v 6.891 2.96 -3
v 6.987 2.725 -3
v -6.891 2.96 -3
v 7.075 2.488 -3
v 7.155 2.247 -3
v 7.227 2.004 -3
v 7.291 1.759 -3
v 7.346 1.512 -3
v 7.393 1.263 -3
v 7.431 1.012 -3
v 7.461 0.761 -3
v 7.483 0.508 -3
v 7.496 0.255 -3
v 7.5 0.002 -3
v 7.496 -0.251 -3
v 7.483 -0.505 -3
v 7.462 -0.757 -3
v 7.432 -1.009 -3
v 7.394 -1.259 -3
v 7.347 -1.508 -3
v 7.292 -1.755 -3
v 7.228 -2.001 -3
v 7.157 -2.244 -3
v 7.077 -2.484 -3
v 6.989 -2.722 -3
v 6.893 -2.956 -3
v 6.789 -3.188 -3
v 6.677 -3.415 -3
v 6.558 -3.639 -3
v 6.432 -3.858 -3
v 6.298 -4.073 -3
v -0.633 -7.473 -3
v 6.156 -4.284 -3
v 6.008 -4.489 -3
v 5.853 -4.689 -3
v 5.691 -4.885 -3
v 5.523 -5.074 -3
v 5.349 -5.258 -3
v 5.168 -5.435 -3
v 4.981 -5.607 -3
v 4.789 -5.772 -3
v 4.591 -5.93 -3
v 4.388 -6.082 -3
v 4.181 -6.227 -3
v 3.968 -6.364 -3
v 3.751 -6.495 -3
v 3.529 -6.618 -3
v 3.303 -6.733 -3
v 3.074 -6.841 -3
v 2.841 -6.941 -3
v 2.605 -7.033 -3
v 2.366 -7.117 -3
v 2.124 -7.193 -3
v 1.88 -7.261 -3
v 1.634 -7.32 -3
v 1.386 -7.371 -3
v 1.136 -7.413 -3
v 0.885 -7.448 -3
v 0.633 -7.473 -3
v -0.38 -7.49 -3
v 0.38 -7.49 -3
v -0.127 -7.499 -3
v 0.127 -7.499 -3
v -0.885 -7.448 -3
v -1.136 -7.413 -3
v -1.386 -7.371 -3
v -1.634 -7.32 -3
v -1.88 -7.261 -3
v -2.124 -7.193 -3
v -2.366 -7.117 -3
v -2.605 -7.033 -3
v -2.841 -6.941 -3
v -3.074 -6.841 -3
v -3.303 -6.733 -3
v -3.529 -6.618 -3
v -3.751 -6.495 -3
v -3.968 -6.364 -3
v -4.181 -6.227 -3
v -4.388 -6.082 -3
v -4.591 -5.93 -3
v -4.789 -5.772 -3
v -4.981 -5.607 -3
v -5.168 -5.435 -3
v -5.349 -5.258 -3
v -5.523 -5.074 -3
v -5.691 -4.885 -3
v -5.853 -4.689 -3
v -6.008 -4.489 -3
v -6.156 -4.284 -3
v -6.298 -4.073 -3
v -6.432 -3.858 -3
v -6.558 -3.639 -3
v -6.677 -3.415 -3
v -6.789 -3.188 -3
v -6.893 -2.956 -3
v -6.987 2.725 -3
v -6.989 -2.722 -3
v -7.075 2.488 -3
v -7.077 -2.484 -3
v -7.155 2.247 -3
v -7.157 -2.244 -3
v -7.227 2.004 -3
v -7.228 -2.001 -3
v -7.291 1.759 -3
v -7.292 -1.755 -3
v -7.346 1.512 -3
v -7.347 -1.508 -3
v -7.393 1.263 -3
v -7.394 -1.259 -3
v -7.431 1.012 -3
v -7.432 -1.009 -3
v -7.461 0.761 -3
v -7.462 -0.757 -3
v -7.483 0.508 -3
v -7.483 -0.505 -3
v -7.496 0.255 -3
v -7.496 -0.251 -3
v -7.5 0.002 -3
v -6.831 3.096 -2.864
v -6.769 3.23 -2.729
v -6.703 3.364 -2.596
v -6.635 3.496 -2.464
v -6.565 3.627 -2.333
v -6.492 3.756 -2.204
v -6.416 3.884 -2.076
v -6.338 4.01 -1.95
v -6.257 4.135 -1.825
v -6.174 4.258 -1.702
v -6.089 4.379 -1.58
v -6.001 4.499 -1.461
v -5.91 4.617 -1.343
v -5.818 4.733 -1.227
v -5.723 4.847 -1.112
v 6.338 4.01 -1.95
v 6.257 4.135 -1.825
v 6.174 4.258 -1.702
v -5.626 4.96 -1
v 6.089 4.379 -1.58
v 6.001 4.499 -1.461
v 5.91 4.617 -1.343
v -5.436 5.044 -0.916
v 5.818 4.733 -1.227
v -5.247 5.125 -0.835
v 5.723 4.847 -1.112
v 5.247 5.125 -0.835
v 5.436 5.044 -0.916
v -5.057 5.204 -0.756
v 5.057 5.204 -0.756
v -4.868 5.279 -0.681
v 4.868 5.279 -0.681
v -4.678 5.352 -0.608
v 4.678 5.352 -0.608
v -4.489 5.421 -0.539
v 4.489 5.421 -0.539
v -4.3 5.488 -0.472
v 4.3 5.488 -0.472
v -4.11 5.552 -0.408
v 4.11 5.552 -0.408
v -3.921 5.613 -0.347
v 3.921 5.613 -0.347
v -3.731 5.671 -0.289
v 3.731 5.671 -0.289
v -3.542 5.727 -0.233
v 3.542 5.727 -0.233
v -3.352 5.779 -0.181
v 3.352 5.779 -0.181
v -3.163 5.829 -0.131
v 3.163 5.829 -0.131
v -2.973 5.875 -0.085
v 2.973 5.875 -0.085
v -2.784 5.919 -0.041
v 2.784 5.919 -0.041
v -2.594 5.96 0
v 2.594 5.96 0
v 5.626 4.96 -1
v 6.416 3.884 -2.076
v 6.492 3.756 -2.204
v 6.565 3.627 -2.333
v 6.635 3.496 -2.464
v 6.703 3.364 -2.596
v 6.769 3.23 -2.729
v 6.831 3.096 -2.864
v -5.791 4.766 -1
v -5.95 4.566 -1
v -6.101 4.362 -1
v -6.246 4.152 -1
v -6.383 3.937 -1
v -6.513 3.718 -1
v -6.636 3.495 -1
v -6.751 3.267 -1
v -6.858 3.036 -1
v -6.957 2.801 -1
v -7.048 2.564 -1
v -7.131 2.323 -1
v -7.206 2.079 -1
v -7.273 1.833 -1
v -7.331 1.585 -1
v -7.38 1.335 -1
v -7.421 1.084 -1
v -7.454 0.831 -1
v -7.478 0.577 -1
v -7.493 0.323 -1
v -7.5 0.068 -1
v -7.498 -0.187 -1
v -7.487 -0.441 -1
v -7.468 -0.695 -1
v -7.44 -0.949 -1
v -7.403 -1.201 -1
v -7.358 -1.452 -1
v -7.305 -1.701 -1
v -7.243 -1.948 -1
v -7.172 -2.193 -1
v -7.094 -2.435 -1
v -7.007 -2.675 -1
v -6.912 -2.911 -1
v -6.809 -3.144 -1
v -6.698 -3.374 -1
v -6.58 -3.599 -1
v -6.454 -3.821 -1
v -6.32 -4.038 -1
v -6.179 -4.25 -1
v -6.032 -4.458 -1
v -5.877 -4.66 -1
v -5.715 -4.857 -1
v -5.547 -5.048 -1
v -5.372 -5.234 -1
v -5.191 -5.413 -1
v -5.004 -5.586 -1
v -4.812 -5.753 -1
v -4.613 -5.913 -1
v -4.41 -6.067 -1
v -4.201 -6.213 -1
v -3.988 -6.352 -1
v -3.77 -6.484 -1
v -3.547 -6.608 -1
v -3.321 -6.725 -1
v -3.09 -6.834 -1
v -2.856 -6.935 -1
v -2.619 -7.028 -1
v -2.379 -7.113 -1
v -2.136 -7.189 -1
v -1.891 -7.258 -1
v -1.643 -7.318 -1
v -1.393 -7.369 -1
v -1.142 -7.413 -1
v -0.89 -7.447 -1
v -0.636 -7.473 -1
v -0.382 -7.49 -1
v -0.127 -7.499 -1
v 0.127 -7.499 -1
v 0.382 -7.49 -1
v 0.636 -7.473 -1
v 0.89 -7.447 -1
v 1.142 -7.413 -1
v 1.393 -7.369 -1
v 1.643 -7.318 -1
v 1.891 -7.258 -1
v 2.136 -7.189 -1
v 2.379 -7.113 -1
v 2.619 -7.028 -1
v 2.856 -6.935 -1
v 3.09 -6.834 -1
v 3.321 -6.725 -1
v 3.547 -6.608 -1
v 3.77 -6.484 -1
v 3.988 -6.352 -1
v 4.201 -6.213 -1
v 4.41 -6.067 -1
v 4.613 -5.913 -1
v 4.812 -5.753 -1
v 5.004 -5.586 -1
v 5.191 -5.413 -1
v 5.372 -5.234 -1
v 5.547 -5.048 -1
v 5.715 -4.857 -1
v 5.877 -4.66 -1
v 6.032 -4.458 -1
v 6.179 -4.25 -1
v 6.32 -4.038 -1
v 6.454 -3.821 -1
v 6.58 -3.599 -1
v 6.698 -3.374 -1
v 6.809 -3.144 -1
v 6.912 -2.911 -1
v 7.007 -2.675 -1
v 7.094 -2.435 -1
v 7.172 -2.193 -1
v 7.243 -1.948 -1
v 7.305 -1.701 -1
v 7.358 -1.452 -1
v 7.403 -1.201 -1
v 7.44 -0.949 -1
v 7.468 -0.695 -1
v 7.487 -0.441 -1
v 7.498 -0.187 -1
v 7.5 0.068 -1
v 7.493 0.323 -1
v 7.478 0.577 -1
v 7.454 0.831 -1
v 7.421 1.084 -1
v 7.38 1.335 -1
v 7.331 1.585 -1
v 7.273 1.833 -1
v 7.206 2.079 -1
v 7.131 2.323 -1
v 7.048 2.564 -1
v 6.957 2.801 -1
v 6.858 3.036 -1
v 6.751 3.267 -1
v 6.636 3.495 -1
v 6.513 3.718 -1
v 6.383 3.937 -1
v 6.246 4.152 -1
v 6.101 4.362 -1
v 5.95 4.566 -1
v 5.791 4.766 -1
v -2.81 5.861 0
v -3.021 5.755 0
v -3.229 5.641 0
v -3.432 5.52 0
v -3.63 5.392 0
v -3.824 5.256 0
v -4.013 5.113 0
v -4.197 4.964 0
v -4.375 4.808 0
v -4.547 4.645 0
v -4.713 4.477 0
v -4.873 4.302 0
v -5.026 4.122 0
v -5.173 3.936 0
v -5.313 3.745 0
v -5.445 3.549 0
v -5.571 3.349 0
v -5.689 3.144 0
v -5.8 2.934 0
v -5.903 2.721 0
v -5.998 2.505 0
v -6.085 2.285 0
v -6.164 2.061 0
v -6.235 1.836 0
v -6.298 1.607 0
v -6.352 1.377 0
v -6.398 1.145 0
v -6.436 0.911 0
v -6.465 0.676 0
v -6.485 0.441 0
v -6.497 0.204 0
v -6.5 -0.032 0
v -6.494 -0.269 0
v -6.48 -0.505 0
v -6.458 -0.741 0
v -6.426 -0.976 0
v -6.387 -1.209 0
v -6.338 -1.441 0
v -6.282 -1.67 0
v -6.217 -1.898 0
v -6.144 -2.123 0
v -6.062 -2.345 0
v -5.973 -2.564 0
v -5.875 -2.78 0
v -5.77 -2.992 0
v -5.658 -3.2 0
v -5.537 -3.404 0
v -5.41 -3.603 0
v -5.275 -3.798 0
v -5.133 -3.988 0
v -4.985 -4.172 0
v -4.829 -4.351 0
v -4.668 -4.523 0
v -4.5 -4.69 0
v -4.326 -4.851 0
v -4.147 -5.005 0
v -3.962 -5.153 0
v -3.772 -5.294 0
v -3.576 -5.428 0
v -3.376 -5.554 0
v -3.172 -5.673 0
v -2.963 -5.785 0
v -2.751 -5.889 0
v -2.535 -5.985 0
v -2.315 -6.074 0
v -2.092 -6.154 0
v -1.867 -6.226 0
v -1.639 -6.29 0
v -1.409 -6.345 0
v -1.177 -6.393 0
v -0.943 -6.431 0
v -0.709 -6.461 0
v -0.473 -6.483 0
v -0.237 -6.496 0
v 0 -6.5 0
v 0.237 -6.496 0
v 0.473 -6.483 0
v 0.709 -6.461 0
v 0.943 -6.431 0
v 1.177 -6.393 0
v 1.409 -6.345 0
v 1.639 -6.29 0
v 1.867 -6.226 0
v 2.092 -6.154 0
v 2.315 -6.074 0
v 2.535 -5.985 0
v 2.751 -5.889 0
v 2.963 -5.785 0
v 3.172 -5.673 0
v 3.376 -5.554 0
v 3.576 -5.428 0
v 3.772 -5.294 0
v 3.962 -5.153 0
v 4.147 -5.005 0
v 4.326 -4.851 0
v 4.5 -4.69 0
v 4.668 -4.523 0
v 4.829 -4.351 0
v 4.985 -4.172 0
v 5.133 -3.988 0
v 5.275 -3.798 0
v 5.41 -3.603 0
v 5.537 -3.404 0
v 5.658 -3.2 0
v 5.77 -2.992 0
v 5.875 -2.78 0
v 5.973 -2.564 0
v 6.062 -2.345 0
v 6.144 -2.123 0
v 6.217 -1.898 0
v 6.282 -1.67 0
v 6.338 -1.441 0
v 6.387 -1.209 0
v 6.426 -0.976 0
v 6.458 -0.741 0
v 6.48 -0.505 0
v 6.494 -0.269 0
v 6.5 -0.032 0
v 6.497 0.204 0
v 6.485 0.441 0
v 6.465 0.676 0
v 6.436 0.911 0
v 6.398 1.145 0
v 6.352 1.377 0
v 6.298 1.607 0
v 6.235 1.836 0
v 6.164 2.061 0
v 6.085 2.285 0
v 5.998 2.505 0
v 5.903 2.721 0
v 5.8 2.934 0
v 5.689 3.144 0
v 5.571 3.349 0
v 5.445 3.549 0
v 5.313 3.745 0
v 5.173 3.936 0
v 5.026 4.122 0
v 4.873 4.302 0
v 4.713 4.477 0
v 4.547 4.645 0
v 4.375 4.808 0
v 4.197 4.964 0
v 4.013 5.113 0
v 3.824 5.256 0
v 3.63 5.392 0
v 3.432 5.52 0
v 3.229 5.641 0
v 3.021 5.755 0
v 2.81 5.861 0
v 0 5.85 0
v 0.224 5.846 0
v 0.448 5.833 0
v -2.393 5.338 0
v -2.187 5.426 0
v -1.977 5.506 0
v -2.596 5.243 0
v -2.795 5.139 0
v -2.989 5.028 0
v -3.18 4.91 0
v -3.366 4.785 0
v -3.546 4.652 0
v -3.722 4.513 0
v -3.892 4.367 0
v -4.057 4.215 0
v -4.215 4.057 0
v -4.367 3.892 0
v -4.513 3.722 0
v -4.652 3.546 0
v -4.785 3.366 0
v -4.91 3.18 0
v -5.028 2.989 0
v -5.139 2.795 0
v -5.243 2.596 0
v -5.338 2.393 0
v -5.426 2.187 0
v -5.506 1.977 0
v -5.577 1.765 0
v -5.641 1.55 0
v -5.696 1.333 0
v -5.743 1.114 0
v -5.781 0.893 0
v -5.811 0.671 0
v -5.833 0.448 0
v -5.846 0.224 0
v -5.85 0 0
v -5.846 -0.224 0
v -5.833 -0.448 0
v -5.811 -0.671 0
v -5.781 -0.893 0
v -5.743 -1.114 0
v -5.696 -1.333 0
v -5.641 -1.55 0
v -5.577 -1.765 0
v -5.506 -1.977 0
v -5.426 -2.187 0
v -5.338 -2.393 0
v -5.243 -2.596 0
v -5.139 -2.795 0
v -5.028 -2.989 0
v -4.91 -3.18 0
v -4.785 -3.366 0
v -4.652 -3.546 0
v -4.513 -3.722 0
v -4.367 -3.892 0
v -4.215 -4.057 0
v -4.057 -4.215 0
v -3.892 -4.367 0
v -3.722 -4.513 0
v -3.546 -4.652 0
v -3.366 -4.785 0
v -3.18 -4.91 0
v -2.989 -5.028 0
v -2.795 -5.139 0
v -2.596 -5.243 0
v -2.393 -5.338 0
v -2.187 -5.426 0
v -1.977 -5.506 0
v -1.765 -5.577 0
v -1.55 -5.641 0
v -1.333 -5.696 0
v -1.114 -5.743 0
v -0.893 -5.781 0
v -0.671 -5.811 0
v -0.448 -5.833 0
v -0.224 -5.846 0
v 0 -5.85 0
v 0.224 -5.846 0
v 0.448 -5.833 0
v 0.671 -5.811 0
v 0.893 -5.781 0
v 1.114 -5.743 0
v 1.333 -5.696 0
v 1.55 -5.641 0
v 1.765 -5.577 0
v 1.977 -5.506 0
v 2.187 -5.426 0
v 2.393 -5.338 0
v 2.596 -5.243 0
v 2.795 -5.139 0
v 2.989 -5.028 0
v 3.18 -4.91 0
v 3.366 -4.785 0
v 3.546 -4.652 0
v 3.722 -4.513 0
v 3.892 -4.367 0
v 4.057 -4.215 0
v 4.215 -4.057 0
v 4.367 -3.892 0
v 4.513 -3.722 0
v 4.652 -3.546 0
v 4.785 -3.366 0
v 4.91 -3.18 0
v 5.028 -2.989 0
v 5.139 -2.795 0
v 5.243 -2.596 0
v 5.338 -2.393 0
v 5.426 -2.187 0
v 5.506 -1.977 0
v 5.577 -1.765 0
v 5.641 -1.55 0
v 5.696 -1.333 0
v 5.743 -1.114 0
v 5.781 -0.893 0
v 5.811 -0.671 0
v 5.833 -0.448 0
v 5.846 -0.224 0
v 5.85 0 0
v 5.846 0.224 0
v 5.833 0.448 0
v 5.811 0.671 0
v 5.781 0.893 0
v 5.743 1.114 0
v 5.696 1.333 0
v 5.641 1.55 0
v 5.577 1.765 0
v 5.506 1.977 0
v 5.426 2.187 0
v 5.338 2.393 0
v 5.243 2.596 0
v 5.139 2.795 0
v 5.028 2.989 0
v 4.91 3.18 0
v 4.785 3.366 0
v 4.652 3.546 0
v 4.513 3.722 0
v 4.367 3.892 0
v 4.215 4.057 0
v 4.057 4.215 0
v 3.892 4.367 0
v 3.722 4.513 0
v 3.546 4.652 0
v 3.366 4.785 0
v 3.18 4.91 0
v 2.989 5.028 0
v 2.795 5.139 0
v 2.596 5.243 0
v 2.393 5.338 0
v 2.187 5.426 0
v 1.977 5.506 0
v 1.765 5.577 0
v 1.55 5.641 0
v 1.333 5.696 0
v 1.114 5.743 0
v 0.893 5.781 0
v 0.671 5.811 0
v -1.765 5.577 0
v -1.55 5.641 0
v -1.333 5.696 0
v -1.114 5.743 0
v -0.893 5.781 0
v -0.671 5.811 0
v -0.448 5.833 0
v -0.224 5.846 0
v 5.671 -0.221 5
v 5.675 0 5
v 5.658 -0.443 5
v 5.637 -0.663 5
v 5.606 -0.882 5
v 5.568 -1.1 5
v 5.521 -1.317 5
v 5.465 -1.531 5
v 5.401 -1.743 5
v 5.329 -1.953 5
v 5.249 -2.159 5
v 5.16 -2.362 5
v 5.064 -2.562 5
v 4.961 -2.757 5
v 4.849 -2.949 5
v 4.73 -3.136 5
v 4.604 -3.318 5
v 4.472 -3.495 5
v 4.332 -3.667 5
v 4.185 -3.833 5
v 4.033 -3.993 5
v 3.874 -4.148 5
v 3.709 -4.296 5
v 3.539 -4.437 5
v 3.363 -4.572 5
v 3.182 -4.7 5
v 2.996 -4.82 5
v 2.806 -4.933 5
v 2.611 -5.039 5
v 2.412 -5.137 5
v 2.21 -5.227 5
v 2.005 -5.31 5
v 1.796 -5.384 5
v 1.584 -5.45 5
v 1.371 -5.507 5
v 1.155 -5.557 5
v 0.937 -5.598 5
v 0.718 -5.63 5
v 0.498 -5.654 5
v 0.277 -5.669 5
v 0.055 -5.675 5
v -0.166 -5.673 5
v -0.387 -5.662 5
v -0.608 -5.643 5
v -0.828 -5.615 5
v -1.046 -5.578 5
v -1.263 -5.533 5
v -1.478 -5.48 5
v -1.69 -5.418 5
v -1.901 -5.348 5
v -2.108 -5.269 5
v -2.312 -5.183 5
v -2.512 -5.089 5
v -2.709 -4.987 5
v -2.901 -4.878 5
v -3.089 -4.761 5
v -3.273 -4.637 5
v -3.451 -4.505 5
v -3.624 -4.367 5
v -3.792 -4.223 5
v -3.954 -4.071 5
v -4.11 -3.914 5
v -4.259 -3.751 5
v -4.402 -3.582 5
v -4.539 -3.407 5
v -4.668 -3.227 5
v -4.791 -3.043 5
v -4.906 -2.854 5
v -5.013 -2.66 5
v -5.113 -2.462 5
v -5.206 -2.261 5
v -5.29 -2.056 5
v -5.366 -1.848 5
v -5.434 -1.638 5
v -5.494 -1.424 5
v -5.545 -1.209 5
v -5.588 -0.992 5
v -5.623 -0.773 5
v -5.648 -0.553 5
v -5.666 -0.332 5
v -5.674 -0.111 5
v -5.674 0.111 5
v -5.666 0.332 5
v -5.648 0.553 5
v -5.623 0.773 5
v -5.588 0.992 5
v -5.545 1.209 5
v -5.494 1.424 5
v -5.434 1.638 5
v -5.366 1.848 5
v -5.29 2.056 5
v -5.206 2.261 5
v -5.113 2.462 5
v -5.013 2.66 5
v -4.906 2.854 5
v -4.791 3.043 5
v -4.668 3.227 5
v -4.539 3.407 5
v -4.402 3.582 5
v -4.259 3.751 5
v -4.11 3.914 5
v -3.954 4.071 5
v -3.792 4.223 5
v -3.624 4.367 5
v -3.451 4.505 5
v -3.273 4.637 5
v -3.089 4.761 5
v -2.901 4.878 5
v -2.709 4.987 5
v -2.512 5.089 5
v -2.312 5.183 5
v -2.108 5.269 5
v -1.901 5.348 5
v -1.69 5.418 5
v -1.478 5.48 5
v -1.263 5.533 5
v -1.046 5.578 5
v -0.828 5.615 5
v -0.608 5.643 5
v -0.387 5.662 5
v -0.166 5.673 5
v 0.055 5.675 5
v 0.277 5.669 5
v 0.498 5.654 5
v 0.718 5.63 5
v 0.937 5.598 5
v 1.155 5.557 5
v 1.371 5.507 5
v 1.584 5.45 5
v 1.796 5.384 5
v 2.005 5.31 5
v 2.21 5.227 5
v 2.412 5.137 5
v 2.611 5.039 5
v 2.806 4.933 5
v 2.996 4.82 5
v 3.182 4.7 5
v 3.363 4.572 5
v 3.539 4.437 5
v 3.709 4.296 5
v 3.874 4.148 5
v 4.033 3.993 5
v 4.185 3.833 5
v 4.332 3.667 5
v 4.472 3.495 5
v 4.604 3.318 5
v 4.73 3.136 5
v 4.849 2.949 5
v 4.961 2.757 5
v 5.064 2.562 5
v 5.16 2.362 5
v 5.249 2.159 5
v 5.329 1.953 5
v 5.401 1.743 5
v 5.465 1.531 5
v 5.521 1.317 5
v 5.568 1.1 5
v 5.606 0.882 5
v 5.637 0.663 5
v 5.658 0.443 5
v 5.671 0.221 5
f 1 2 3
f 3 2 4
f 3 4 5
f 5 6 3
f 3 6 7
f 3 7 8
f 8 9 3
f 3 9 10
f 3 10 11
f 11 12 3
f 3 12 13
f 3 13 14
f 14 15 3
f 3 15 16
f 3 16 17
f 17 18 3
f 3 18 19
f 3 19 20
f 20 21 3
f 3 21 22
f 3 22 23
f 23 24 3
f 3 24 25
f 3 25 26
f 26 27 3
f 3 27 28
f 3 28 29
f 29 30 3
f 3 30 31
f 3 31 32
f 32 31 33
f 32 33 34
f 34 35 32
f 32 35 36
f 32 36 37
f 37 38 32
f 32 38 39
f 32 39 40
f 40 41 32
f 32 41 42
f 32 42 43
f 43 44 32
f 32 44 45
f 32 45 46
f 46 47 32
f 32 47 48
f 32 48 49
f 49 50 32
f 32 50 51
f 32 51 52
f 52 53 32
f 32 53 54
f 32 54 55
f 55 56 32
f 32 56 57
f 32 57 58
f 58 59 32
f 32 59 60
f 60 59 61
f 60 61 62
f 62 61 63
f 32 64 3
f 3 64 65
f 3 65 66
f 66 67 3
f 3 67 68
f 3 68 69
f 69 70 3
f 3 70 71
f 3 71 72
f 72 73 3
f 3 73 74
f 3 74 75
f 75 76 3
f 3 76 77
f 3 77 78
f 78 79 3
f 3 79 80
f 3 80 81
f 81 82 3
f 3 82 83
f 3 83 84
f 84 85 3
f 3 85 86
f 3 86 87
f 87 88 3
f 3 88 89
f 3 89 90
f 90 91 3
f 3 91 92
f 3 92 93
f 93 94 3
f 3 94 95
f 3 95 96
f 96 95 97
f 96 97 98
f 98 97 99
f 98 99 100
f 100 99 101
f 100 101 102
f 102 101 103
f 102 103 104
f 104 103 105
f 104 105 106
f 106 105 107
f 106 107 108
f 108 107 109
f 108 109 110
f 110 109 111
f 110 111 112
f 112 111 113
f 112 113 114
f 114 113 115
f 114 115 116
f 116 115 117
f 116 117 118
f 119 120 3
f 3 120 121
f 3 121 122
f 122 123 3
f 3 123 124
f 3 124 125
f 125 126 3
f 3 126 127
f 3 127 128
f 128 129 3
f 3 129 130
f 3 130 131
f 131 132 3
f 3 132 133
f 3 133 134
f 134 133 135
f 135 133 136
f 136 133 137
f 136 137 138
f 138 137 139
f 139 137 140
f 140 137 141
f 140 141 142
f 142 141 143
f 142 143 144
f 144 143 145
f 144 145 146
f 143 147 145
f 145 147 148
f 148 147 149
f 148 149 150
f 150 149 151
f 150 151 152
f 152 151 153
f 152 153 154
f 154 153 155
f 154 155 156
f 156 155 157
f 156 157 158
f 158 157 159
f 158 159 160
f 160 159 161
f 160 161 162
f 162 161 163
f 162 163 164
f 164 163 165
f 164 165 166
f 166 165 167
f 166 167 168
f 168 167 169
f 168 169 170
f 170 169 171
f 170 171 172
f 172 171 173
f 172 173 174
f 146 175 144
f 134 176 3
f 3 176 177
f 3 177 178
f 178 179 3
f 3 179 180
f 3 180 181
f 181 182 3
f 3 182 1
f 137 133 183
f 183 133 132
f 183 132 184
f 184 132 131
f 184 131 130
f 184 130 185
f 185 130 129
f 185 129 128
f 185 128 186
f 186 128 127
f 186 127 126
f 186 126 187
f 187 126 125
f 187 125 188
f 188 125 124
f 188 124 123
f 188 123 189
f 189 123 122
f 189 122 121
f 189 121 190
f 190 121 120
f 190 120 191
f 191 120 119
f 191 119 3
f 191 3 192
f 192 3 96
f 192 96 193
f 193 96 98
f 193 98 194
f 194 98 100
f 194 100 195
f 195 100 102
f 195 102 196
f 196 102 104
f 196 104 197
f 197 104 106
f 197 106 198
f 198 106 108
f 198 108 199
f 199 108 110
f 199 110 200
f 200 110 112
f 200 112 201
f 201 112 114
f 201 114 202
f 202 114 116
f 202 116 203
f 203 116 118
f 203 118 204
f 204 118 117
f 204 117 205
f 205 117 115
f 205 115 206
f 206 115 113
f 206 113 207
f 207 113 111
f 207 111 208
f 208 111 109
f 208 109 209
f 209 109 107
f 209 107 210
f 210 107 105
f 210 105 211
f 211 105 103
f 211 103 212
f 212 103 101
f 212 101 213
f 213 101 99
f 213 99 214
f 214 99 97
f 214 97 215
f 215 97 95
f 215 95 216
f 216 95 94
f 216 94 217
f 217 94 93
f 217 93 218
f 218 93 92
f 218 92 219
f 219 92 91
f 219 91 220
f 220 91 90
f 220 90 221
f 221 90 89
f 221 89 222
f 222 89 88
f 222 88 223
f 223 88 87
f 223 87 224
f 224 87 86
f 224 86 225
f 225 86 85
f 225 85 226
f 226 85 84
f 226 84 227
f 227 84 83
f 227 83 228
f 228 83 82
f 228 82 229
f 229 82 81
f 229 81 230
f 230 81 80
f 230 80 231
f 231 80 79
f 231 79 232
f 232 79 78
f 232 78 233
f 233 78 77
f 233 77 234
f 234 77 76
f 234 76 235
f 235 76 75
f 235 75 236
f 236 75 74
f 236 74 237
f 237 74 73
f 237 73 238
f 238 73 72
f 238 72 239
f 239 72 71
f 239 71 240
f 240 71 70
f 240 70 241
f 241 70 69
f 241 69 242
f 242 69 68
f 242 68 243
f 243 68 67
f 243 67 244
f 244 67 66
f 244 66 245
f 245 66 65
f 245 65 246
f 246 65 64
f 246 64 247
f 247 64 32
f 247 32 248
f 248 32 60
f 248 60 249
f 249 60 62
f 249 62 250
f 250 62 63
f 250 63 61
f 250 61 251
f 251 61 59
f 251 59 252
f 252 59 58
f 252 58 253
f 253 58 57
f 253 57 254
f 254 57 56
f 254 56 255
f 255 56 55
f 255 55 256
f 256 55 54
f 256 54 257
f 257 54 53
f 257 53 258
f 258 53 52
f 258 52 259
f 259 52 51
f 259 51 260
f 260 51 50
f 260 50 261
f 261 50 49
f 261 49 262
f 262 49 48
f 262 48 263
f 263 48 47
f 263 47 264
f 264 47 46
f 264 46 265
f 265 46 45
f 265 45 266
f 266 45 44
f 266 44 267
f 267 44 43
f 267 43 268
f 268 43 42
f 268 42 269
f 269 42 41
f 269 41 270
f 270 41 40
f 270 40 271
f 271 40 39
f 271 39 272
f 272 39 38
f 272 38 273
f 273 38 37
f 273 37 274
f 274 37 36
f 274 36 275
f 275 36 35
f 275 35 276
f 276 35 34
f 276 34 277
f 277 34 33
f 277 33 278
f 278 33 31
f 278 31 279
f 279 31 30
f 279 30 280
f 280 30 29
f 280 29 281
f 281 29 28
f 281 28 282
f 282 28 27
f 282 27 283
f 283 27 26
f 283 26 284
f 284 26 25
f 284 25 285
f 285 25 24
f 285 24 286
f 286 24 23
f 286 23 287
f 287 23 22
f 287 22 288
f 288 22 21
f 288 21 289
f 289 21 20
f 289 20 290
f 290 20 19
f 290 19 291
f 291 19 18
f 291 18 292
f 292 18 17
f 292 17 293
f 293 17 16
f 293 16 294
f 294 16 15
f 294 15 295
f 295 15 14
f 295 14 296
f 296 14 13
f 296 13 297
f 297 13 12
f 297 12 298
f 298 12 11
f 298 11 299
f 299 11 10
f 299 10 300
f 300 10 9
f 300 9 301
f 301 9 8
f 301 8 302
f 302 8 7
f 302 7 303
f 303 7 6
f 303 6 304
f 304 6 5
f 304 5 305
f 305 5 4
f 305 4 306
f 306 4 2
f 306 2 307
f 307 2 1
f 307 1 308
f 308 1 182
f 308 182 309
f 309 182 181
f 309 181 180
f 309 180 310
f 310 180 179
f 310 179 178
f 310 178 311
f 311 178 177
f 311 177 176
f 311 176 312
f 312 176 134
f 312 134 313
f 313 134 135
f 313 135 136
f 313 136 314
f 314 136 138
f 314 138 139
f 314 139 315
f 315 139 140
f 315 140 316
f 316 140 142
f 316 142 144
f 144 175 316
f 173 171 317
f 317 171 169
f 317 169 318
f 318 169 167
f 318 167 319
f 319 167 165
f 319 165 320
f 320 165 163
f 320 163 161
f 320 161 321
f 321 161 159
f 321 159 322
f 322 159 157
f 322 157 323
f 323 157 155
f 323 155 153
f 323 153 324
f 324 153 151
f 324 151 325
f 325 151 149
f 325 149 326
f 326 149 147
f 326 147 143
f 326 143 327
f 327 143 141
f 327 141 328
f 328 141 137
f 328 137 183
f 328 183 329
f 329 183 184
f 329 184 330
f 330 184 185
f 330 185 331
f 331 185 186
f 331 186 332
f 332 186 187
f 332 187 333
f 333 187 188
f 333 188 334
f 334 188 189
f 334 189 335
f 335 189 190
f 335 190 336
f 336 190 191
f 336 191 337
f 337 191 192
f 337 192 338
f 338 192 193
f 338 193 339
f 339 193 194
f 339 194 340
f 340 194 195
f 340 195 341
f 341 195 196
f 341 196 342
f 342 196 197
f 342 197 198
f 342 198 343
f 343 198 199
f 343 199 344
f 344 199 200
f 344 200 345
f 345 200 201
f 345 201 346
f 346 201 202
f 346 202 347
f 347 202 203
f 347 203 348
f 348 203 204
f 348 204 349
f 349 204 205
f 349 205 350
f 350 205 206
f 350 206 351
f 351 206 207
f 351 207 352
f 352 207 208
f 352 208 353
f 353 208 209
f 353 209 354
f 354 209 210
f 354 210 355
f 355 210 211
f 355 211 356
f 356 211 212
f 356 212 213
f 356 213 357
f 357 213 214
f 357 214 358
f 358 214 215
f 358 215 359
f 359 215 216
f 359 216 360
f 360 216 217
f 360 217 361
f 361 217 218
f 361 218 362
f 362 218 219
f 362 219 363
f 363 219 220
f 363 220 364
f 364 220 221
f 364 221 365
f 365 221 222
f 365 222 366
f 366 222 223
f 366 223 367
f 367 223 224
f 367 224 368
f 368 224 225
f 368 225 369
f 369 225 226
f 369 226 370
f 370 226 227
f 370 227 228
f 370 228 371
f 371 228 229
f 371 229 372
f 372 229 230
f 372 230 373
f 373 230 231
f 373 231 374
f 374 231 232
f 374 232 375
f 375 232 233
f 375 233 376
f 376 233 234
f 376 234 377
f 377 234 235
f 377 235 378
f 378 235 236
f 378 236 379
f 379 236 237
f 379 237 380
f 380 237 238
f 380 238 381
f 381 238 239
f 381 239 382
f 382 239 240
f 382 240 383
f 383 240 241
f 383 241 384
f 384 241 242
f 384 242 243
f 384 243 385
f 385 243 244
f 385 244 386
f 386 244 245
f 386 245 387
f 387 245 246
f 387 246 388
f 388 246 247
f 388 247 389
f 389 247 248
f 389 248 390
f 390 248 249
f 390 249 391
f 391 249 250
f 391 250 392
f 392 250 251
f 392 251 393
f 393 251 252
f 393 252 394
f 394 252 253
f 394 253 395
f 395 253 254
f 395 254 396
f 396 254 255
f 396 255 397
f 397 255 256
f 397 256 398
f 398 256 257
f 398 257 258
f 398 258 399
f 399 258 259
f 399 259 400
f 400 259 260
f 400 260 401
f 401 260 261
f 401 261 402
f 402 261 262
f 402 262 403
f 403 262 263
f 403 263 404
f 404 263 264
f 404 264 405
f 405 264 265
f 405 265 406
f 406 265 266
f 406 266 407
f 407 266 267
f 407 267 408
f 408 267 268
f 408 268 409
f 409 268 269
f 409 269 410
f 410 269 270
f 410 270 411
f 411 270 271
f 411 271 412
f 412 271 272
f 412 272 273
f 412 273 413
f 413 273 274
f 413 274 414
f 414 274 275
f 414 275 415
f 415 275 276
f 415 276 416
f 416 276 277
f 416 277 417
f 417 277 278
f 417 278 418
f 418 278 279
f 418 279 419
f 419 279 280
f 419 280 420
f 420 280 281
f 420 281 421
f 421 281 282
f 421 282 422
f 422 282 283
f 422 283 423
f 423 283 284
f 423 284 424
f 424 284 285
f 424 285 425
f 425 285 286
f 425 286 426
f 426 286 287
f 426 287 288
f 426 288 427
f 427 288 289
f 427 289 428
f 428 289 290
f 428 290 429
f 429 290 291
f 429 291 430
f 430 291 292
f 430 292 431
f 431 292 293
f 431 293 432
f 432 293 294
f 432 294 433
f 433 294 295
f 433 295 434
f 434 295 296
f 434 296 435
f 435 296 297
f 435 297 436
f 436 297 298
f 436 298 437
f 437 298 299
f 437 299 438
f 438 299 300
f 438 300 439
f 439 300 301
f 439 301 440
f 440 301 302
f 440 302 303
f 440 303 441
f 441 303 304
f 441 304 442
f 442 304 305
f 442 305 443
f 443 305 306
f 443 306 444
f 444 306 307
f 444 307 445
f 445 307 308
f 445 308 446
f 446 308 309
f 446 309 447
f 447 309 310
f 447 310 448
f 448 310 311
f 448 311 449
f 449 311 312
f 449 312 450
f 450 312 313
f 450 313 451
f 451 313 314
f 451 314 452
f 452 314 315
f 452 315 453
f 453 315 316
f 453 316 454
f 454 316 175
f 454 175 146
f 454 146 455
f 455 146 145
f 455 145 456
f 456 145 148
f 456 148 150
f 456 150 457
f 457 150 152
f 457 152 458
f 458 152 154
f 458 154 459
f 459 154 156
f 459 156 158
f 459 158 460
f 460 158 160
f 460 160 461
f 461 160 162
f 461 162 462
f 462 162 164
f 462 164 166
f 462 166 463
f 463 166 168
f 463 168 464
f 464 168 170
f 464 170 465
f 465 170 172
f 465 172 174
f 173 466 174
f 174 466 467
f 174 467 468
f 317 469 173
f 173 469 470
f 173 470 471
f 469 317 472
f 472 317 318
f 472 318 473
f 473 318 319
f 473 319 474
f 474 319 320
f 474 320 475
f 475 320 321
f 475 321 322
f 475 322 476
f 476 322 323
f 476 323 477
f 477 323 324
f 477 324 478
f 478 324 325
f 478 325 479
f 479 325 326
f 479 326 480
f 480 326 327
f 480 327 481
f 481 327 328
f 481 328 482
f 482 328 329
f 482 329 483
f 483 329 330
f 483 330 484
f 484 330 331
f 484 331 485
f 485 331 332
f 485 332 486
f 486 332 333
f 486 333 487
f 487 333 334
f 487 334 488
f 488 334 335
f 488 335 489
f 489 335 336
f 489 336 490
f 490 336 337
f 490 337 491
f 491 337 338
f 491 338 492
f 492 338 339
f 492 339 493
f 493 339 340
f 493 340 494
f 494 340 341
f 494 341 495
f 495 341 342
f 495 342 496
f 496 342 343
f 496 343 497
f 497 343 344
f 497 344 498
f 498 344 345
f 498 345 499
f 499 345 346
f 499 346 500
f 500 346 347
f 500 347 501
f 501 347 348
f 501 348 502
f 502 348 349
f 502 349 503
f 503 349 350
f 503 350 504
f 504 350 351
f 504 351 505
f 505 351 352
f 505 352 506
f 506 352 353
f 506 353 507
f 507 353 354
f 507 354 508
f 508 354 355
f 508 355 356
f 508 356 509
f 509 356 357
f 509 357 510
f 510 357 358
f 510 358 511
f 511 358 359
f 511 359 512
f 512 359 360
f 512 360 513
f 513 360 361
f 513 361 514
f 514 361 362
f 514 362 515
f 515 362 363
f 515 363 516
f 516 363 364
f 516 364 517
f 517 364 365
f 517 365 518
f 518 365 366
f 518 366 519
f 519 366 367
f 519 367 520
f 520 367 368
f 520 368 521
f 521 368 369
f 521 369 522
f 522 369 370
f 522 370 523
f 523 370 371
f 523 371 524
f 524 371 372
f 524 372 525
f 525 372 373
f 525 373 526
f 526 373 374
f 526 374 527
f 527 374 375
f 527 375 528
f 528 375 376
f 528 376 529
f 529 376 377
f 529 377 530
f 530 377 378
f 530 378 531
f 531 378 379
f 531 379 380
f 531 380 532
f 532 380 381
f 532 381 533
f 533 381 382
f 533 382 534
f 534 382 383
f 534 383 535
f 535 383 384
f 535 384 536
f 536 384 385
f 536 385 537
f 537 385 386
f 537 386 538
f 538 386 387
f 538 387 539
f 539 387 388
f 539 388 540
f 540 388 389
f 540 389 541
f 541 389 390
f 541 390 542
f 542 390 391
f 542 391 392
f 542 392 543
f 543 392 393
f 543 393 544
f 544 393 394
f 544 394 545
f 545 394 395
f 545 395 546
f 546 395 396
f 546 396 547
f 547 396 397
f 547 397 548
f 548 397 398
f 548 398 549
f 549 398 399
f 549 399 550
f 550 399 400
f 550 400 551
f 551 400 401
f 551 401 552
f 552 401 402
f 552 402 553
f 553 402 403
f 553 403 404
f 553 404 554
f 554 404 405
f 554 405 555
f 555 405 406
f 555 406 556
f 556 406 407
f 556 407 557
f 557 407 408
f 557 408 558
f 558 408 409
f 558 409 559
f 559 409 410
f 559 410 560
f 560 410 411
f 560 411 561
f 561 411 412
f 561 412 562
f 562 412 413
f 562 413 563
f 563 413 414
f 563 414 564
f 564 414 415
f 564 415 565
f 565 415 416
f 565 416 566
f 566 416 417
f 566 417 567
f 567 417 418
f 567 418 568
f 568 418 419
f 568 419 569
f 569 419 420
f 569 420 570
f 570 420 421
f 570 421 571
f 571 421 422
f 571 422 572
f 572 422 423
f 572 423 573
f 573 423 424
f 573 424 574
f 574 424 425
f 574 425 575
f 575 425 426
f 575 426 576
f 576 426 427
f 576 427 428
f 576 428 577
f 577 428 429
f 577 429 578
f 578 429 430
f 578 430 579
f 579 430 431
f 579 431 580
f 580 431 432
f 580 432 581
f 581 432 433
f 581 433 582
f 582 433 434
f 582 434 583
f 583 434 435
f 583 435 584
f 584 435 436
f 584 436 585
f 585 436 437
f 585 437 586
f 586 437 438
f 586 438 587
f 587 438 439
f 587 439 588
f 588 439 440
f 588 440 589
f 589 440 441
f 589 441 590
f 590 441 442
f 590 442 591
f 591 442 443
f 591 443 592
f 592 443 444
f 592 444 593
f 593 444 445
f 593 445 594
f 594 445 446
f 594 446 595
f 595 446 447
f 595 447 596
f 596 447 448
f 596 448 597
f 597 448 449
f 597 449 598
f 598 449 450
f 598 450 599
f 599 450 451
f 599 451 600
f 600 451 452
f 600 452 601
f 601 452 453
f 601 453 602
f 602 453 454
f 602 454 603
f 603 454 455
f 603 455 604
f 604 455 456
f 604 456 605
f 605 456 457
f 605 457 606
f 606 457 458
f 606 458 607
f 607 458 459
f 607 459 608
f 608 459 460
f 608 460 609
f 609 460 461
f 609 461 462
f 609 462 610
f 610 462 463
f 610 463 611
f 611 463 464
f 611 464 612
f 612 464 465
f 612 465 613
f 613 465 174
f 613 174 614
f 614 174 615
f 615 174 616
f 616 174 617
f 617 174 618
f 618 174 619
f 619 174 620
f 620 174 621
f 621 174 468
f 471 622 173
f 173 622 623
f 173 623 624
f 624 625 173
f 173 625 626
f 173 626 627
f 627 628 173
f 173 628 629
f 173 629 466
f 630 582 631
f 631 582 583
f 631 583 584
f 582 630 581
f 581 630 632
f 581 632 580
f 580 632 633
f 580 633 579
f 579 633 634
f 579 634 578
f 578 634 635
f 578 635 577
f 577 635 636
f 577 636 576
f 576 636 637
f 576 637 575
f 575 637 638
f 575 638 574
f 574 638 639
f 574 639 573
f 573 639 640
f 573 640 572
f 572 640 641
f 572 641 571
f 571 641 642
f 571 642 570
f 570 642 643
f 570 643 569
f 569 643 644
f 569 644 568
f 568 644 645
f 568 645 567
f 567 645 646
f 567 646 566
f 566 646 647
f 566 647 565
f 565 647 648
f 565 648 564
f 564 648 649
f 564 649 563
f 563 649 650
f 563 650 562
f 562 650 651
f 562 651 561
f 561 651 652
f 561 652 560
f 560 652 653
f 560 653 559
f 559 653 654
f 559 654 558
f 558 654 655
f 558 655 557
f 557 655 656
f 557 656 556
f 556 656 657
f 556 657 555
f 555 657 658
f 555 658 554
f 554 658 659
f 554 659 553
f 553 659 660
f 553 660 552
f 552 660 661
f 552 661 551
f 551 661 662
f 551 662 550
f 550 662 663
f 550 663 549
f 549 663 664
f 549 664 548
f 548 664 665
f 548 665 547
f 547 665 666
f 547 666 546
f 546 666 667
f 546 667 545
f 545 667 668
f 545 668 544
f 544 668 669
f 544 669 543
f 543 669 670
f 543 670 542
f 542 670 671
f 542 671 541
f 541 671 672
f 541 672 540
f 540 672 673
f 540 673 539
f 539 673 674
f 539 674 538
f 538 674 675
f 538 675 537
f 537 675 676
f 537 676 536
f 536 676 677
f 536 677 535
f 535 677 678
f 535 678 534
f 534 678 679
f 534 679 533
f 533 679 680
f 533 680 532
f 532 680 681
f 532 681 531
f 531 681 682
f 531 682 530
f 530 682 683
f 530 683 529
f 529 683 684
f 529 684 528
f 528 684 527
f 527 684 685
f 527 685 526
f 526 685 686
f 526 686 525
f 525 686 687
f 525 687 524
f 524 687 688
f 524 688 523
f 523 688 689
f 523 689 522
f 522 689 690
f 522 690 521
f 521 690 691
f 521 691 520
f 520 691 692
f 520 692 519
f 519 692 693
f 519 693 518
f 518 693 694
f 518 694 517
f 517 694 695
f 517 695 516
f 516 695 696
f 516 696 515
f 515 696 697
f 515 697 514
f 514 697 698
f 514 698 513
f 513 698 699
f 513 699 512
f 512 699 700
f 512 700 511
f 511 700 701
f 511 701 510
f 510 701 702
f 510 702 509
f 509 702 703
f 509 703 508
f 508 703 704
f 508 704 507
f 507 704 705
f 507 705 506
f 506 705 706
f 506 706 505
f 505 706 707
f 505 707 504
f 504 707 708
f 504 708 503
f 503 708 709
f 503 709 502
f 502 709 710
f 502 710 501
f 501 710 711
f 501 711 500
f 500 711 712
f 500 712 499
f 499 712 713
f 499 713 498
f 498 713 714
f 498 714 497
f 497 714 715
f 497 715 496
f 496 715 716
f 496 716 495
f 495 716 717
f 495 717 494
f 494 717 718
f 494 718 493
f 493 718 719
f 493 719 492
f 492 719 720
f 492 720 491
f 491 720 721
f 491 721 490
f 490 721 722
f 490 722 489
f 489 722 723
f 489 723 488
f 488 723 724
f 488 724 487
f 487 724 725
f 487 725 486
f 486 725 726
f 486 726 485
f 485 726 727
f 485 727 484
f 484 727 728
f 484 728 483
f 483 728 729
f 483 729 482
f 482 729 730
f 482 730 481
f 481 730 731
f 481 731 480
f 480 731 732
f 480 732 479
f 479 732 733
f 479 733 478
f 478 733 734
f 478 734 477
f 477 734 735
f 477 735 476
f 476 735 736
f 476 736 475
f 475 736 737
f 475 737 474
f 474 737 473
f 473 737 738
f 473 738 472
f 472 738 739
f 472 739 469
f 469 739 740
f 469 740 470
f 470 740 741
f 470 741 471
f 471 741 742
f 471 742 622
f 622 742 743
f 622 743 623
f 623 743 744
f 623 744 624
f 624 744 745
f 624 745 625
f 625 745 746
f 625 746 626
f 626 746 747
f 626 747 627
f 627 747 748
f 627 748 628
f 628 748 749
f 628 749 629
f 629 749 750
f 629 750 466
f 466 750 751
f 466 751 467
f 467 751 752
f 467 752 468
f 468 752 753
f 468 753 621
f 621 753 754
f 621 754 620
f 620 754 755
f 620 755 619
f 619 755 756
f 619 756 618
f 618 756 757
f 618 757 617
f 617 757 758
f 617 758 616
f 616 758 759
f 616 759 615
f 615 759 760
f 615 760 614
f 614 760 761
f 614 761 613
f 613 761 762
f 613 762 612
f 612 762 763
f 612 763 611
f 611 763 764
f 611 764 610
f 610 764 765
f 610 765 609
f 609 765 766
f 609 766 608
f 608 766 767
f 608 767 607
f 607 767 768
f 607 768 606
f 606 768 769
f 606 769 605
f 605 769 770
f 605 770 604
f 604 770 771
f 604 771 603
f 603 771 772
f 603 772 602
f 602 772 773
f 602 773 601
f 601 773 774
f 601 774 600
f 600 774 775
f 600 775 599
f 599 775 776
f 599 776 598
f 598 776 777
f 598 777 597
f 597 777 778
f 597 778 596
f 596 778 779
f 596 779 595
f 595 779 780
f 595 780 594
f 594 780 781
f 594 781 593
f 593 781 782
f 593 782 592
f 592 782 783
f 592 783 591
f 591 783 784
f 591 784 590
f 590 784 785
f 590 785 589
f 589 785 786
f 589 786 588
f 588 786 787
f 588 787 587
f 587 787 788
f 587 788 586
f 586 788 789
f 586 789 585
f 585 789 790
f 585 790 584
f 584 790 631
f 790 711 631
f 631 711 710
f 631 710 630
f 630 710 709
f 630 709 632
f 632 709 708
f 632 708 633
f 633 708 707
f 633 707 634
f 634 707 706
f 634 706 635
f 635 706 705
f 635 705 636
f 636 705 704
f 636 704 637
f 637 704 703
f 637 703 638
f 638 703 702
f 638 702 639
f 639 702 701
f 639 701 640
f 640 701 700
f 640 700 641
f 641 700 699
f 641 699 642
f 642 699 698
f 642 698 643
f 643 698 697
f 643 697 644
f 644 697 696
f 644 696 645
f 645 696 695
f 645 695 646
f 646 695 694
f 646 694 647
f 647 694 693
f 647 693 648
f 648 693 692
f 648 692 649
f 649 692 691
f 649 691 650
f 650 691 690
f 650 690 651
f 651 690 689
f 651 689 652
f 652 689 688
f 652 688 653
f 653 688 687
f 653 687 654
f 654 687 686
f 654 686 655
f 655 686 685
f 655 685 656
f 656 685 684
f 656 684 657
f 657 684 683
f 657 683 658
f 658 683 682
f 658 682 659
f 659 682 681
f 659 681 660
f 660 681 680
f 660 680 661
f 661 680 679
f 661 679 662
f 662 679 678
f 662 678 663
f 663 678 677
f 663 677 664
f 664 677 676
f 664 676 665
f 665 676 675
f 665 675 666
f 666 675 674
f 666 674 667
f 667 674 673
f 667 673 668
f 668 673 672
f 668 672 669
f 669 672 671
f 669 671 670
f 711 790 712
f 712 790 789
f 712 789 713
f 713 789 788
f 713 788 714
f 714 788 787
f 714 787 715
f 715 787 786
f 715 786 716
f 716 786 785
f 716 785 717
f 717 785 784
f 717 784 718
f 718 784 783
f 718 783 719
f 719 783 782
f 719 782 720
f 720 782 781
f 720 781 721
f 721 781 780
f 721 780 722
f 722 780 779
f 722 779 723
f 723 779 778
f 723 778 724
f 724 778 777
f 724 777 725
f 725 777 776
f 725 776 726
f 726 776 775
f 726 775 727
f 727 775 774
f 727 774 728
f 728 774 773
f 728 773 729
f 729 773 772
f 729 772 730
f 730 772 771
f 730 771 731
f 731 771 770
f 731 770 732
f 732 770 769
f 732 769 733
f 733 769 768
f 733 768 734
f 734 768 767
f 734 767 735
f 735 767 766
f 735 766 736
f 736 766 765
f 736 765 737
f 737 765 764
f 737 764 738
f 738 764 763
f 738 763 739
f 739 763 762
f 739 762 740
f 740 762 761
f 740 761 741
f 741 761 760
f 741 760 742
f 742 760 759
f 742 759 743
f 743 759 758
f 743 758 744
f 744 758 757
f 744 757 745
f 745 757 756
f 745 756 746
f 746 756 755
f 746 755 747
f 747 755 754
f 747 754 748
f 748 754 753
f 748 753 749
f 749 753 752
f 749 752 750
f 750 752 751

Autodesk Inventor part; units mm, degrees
ref_plane "YZ Plane" through (0, 0, 0) normal (1, 0, 0) x (0, 1, 0)
ref_plane "XZ Plane" through (0, 0, 0) normal (0, 1, 0) x (-1, 0, 0)
sketch "Skizze1" plane through (0, 0, 0) normal (0, 1, 0) x (-1, 0, 0)
  point P0 (0, 0)
sketch "Skizze2" plane through (0, 0, 0) normal (0, 0, 1) x (1, 0, 0)
  circle A0 centre (0, 0) radius 5.85
  dimension "d0" = 11.7
extrude "Extrusion1" add sketch "Skizze2" along normal blind 5 draft -2
sketch "Skizze3" plane through (0, 0, 0) normal (0, 0, -1) x (-1, 0, 0)
  circle A0 centre (0, 0) radius 7.5
  dimension "d3" = 15
extrude "Extrusion2" add sketch "Skizze3" along normal blind 1
sketch "Skizze4" plane through (0, 0, -1) normal (0, 0, -1) x (-1, 0, 0)
  circle A0 centre (0, 0) radius 7.5 projected
ref_plane "Arbeitsebene1" through (-5, -7, -5.9) normal (0, 0, 1) x (1, 0, 0)
extrude "Extrusion3" add sketch "Skizze4" along normal blind 4
chamfer "Fase1" distance 1 angle 45 1 edges at (7.5, 0, 0)
sketch "Skizze5" plane through (0, 0, 0) normal (1, 0, 0) x (0, 1, 0)
  line L0 (-7.5, -1) -> (-7.5, -5) projected
  line L1 (-7.5, -3) -> (2.9599, -3)
  line L2 (2.9599, -3) -> (7.8543, 1.8945)
  line L3 (7.8543, 1.8945) -> (7.8543, -11.1641)
  line L4 (7.8543, -11.1641) -> (-9.215, -10.2828)
  line L5 (-9.215, -10.2828) -> (-7.5, -3)
  point P0 (0, 0)
  dimension "d11" = 135
extrude "Extrusion4" cut sketch "Skizze5" along normal through all both and the other way through all
properties part number "tmp_20_Cube_Insert_Kinematic_Astromedia_30x40x90_pro_magnetic_M12lens_mirrormount"
